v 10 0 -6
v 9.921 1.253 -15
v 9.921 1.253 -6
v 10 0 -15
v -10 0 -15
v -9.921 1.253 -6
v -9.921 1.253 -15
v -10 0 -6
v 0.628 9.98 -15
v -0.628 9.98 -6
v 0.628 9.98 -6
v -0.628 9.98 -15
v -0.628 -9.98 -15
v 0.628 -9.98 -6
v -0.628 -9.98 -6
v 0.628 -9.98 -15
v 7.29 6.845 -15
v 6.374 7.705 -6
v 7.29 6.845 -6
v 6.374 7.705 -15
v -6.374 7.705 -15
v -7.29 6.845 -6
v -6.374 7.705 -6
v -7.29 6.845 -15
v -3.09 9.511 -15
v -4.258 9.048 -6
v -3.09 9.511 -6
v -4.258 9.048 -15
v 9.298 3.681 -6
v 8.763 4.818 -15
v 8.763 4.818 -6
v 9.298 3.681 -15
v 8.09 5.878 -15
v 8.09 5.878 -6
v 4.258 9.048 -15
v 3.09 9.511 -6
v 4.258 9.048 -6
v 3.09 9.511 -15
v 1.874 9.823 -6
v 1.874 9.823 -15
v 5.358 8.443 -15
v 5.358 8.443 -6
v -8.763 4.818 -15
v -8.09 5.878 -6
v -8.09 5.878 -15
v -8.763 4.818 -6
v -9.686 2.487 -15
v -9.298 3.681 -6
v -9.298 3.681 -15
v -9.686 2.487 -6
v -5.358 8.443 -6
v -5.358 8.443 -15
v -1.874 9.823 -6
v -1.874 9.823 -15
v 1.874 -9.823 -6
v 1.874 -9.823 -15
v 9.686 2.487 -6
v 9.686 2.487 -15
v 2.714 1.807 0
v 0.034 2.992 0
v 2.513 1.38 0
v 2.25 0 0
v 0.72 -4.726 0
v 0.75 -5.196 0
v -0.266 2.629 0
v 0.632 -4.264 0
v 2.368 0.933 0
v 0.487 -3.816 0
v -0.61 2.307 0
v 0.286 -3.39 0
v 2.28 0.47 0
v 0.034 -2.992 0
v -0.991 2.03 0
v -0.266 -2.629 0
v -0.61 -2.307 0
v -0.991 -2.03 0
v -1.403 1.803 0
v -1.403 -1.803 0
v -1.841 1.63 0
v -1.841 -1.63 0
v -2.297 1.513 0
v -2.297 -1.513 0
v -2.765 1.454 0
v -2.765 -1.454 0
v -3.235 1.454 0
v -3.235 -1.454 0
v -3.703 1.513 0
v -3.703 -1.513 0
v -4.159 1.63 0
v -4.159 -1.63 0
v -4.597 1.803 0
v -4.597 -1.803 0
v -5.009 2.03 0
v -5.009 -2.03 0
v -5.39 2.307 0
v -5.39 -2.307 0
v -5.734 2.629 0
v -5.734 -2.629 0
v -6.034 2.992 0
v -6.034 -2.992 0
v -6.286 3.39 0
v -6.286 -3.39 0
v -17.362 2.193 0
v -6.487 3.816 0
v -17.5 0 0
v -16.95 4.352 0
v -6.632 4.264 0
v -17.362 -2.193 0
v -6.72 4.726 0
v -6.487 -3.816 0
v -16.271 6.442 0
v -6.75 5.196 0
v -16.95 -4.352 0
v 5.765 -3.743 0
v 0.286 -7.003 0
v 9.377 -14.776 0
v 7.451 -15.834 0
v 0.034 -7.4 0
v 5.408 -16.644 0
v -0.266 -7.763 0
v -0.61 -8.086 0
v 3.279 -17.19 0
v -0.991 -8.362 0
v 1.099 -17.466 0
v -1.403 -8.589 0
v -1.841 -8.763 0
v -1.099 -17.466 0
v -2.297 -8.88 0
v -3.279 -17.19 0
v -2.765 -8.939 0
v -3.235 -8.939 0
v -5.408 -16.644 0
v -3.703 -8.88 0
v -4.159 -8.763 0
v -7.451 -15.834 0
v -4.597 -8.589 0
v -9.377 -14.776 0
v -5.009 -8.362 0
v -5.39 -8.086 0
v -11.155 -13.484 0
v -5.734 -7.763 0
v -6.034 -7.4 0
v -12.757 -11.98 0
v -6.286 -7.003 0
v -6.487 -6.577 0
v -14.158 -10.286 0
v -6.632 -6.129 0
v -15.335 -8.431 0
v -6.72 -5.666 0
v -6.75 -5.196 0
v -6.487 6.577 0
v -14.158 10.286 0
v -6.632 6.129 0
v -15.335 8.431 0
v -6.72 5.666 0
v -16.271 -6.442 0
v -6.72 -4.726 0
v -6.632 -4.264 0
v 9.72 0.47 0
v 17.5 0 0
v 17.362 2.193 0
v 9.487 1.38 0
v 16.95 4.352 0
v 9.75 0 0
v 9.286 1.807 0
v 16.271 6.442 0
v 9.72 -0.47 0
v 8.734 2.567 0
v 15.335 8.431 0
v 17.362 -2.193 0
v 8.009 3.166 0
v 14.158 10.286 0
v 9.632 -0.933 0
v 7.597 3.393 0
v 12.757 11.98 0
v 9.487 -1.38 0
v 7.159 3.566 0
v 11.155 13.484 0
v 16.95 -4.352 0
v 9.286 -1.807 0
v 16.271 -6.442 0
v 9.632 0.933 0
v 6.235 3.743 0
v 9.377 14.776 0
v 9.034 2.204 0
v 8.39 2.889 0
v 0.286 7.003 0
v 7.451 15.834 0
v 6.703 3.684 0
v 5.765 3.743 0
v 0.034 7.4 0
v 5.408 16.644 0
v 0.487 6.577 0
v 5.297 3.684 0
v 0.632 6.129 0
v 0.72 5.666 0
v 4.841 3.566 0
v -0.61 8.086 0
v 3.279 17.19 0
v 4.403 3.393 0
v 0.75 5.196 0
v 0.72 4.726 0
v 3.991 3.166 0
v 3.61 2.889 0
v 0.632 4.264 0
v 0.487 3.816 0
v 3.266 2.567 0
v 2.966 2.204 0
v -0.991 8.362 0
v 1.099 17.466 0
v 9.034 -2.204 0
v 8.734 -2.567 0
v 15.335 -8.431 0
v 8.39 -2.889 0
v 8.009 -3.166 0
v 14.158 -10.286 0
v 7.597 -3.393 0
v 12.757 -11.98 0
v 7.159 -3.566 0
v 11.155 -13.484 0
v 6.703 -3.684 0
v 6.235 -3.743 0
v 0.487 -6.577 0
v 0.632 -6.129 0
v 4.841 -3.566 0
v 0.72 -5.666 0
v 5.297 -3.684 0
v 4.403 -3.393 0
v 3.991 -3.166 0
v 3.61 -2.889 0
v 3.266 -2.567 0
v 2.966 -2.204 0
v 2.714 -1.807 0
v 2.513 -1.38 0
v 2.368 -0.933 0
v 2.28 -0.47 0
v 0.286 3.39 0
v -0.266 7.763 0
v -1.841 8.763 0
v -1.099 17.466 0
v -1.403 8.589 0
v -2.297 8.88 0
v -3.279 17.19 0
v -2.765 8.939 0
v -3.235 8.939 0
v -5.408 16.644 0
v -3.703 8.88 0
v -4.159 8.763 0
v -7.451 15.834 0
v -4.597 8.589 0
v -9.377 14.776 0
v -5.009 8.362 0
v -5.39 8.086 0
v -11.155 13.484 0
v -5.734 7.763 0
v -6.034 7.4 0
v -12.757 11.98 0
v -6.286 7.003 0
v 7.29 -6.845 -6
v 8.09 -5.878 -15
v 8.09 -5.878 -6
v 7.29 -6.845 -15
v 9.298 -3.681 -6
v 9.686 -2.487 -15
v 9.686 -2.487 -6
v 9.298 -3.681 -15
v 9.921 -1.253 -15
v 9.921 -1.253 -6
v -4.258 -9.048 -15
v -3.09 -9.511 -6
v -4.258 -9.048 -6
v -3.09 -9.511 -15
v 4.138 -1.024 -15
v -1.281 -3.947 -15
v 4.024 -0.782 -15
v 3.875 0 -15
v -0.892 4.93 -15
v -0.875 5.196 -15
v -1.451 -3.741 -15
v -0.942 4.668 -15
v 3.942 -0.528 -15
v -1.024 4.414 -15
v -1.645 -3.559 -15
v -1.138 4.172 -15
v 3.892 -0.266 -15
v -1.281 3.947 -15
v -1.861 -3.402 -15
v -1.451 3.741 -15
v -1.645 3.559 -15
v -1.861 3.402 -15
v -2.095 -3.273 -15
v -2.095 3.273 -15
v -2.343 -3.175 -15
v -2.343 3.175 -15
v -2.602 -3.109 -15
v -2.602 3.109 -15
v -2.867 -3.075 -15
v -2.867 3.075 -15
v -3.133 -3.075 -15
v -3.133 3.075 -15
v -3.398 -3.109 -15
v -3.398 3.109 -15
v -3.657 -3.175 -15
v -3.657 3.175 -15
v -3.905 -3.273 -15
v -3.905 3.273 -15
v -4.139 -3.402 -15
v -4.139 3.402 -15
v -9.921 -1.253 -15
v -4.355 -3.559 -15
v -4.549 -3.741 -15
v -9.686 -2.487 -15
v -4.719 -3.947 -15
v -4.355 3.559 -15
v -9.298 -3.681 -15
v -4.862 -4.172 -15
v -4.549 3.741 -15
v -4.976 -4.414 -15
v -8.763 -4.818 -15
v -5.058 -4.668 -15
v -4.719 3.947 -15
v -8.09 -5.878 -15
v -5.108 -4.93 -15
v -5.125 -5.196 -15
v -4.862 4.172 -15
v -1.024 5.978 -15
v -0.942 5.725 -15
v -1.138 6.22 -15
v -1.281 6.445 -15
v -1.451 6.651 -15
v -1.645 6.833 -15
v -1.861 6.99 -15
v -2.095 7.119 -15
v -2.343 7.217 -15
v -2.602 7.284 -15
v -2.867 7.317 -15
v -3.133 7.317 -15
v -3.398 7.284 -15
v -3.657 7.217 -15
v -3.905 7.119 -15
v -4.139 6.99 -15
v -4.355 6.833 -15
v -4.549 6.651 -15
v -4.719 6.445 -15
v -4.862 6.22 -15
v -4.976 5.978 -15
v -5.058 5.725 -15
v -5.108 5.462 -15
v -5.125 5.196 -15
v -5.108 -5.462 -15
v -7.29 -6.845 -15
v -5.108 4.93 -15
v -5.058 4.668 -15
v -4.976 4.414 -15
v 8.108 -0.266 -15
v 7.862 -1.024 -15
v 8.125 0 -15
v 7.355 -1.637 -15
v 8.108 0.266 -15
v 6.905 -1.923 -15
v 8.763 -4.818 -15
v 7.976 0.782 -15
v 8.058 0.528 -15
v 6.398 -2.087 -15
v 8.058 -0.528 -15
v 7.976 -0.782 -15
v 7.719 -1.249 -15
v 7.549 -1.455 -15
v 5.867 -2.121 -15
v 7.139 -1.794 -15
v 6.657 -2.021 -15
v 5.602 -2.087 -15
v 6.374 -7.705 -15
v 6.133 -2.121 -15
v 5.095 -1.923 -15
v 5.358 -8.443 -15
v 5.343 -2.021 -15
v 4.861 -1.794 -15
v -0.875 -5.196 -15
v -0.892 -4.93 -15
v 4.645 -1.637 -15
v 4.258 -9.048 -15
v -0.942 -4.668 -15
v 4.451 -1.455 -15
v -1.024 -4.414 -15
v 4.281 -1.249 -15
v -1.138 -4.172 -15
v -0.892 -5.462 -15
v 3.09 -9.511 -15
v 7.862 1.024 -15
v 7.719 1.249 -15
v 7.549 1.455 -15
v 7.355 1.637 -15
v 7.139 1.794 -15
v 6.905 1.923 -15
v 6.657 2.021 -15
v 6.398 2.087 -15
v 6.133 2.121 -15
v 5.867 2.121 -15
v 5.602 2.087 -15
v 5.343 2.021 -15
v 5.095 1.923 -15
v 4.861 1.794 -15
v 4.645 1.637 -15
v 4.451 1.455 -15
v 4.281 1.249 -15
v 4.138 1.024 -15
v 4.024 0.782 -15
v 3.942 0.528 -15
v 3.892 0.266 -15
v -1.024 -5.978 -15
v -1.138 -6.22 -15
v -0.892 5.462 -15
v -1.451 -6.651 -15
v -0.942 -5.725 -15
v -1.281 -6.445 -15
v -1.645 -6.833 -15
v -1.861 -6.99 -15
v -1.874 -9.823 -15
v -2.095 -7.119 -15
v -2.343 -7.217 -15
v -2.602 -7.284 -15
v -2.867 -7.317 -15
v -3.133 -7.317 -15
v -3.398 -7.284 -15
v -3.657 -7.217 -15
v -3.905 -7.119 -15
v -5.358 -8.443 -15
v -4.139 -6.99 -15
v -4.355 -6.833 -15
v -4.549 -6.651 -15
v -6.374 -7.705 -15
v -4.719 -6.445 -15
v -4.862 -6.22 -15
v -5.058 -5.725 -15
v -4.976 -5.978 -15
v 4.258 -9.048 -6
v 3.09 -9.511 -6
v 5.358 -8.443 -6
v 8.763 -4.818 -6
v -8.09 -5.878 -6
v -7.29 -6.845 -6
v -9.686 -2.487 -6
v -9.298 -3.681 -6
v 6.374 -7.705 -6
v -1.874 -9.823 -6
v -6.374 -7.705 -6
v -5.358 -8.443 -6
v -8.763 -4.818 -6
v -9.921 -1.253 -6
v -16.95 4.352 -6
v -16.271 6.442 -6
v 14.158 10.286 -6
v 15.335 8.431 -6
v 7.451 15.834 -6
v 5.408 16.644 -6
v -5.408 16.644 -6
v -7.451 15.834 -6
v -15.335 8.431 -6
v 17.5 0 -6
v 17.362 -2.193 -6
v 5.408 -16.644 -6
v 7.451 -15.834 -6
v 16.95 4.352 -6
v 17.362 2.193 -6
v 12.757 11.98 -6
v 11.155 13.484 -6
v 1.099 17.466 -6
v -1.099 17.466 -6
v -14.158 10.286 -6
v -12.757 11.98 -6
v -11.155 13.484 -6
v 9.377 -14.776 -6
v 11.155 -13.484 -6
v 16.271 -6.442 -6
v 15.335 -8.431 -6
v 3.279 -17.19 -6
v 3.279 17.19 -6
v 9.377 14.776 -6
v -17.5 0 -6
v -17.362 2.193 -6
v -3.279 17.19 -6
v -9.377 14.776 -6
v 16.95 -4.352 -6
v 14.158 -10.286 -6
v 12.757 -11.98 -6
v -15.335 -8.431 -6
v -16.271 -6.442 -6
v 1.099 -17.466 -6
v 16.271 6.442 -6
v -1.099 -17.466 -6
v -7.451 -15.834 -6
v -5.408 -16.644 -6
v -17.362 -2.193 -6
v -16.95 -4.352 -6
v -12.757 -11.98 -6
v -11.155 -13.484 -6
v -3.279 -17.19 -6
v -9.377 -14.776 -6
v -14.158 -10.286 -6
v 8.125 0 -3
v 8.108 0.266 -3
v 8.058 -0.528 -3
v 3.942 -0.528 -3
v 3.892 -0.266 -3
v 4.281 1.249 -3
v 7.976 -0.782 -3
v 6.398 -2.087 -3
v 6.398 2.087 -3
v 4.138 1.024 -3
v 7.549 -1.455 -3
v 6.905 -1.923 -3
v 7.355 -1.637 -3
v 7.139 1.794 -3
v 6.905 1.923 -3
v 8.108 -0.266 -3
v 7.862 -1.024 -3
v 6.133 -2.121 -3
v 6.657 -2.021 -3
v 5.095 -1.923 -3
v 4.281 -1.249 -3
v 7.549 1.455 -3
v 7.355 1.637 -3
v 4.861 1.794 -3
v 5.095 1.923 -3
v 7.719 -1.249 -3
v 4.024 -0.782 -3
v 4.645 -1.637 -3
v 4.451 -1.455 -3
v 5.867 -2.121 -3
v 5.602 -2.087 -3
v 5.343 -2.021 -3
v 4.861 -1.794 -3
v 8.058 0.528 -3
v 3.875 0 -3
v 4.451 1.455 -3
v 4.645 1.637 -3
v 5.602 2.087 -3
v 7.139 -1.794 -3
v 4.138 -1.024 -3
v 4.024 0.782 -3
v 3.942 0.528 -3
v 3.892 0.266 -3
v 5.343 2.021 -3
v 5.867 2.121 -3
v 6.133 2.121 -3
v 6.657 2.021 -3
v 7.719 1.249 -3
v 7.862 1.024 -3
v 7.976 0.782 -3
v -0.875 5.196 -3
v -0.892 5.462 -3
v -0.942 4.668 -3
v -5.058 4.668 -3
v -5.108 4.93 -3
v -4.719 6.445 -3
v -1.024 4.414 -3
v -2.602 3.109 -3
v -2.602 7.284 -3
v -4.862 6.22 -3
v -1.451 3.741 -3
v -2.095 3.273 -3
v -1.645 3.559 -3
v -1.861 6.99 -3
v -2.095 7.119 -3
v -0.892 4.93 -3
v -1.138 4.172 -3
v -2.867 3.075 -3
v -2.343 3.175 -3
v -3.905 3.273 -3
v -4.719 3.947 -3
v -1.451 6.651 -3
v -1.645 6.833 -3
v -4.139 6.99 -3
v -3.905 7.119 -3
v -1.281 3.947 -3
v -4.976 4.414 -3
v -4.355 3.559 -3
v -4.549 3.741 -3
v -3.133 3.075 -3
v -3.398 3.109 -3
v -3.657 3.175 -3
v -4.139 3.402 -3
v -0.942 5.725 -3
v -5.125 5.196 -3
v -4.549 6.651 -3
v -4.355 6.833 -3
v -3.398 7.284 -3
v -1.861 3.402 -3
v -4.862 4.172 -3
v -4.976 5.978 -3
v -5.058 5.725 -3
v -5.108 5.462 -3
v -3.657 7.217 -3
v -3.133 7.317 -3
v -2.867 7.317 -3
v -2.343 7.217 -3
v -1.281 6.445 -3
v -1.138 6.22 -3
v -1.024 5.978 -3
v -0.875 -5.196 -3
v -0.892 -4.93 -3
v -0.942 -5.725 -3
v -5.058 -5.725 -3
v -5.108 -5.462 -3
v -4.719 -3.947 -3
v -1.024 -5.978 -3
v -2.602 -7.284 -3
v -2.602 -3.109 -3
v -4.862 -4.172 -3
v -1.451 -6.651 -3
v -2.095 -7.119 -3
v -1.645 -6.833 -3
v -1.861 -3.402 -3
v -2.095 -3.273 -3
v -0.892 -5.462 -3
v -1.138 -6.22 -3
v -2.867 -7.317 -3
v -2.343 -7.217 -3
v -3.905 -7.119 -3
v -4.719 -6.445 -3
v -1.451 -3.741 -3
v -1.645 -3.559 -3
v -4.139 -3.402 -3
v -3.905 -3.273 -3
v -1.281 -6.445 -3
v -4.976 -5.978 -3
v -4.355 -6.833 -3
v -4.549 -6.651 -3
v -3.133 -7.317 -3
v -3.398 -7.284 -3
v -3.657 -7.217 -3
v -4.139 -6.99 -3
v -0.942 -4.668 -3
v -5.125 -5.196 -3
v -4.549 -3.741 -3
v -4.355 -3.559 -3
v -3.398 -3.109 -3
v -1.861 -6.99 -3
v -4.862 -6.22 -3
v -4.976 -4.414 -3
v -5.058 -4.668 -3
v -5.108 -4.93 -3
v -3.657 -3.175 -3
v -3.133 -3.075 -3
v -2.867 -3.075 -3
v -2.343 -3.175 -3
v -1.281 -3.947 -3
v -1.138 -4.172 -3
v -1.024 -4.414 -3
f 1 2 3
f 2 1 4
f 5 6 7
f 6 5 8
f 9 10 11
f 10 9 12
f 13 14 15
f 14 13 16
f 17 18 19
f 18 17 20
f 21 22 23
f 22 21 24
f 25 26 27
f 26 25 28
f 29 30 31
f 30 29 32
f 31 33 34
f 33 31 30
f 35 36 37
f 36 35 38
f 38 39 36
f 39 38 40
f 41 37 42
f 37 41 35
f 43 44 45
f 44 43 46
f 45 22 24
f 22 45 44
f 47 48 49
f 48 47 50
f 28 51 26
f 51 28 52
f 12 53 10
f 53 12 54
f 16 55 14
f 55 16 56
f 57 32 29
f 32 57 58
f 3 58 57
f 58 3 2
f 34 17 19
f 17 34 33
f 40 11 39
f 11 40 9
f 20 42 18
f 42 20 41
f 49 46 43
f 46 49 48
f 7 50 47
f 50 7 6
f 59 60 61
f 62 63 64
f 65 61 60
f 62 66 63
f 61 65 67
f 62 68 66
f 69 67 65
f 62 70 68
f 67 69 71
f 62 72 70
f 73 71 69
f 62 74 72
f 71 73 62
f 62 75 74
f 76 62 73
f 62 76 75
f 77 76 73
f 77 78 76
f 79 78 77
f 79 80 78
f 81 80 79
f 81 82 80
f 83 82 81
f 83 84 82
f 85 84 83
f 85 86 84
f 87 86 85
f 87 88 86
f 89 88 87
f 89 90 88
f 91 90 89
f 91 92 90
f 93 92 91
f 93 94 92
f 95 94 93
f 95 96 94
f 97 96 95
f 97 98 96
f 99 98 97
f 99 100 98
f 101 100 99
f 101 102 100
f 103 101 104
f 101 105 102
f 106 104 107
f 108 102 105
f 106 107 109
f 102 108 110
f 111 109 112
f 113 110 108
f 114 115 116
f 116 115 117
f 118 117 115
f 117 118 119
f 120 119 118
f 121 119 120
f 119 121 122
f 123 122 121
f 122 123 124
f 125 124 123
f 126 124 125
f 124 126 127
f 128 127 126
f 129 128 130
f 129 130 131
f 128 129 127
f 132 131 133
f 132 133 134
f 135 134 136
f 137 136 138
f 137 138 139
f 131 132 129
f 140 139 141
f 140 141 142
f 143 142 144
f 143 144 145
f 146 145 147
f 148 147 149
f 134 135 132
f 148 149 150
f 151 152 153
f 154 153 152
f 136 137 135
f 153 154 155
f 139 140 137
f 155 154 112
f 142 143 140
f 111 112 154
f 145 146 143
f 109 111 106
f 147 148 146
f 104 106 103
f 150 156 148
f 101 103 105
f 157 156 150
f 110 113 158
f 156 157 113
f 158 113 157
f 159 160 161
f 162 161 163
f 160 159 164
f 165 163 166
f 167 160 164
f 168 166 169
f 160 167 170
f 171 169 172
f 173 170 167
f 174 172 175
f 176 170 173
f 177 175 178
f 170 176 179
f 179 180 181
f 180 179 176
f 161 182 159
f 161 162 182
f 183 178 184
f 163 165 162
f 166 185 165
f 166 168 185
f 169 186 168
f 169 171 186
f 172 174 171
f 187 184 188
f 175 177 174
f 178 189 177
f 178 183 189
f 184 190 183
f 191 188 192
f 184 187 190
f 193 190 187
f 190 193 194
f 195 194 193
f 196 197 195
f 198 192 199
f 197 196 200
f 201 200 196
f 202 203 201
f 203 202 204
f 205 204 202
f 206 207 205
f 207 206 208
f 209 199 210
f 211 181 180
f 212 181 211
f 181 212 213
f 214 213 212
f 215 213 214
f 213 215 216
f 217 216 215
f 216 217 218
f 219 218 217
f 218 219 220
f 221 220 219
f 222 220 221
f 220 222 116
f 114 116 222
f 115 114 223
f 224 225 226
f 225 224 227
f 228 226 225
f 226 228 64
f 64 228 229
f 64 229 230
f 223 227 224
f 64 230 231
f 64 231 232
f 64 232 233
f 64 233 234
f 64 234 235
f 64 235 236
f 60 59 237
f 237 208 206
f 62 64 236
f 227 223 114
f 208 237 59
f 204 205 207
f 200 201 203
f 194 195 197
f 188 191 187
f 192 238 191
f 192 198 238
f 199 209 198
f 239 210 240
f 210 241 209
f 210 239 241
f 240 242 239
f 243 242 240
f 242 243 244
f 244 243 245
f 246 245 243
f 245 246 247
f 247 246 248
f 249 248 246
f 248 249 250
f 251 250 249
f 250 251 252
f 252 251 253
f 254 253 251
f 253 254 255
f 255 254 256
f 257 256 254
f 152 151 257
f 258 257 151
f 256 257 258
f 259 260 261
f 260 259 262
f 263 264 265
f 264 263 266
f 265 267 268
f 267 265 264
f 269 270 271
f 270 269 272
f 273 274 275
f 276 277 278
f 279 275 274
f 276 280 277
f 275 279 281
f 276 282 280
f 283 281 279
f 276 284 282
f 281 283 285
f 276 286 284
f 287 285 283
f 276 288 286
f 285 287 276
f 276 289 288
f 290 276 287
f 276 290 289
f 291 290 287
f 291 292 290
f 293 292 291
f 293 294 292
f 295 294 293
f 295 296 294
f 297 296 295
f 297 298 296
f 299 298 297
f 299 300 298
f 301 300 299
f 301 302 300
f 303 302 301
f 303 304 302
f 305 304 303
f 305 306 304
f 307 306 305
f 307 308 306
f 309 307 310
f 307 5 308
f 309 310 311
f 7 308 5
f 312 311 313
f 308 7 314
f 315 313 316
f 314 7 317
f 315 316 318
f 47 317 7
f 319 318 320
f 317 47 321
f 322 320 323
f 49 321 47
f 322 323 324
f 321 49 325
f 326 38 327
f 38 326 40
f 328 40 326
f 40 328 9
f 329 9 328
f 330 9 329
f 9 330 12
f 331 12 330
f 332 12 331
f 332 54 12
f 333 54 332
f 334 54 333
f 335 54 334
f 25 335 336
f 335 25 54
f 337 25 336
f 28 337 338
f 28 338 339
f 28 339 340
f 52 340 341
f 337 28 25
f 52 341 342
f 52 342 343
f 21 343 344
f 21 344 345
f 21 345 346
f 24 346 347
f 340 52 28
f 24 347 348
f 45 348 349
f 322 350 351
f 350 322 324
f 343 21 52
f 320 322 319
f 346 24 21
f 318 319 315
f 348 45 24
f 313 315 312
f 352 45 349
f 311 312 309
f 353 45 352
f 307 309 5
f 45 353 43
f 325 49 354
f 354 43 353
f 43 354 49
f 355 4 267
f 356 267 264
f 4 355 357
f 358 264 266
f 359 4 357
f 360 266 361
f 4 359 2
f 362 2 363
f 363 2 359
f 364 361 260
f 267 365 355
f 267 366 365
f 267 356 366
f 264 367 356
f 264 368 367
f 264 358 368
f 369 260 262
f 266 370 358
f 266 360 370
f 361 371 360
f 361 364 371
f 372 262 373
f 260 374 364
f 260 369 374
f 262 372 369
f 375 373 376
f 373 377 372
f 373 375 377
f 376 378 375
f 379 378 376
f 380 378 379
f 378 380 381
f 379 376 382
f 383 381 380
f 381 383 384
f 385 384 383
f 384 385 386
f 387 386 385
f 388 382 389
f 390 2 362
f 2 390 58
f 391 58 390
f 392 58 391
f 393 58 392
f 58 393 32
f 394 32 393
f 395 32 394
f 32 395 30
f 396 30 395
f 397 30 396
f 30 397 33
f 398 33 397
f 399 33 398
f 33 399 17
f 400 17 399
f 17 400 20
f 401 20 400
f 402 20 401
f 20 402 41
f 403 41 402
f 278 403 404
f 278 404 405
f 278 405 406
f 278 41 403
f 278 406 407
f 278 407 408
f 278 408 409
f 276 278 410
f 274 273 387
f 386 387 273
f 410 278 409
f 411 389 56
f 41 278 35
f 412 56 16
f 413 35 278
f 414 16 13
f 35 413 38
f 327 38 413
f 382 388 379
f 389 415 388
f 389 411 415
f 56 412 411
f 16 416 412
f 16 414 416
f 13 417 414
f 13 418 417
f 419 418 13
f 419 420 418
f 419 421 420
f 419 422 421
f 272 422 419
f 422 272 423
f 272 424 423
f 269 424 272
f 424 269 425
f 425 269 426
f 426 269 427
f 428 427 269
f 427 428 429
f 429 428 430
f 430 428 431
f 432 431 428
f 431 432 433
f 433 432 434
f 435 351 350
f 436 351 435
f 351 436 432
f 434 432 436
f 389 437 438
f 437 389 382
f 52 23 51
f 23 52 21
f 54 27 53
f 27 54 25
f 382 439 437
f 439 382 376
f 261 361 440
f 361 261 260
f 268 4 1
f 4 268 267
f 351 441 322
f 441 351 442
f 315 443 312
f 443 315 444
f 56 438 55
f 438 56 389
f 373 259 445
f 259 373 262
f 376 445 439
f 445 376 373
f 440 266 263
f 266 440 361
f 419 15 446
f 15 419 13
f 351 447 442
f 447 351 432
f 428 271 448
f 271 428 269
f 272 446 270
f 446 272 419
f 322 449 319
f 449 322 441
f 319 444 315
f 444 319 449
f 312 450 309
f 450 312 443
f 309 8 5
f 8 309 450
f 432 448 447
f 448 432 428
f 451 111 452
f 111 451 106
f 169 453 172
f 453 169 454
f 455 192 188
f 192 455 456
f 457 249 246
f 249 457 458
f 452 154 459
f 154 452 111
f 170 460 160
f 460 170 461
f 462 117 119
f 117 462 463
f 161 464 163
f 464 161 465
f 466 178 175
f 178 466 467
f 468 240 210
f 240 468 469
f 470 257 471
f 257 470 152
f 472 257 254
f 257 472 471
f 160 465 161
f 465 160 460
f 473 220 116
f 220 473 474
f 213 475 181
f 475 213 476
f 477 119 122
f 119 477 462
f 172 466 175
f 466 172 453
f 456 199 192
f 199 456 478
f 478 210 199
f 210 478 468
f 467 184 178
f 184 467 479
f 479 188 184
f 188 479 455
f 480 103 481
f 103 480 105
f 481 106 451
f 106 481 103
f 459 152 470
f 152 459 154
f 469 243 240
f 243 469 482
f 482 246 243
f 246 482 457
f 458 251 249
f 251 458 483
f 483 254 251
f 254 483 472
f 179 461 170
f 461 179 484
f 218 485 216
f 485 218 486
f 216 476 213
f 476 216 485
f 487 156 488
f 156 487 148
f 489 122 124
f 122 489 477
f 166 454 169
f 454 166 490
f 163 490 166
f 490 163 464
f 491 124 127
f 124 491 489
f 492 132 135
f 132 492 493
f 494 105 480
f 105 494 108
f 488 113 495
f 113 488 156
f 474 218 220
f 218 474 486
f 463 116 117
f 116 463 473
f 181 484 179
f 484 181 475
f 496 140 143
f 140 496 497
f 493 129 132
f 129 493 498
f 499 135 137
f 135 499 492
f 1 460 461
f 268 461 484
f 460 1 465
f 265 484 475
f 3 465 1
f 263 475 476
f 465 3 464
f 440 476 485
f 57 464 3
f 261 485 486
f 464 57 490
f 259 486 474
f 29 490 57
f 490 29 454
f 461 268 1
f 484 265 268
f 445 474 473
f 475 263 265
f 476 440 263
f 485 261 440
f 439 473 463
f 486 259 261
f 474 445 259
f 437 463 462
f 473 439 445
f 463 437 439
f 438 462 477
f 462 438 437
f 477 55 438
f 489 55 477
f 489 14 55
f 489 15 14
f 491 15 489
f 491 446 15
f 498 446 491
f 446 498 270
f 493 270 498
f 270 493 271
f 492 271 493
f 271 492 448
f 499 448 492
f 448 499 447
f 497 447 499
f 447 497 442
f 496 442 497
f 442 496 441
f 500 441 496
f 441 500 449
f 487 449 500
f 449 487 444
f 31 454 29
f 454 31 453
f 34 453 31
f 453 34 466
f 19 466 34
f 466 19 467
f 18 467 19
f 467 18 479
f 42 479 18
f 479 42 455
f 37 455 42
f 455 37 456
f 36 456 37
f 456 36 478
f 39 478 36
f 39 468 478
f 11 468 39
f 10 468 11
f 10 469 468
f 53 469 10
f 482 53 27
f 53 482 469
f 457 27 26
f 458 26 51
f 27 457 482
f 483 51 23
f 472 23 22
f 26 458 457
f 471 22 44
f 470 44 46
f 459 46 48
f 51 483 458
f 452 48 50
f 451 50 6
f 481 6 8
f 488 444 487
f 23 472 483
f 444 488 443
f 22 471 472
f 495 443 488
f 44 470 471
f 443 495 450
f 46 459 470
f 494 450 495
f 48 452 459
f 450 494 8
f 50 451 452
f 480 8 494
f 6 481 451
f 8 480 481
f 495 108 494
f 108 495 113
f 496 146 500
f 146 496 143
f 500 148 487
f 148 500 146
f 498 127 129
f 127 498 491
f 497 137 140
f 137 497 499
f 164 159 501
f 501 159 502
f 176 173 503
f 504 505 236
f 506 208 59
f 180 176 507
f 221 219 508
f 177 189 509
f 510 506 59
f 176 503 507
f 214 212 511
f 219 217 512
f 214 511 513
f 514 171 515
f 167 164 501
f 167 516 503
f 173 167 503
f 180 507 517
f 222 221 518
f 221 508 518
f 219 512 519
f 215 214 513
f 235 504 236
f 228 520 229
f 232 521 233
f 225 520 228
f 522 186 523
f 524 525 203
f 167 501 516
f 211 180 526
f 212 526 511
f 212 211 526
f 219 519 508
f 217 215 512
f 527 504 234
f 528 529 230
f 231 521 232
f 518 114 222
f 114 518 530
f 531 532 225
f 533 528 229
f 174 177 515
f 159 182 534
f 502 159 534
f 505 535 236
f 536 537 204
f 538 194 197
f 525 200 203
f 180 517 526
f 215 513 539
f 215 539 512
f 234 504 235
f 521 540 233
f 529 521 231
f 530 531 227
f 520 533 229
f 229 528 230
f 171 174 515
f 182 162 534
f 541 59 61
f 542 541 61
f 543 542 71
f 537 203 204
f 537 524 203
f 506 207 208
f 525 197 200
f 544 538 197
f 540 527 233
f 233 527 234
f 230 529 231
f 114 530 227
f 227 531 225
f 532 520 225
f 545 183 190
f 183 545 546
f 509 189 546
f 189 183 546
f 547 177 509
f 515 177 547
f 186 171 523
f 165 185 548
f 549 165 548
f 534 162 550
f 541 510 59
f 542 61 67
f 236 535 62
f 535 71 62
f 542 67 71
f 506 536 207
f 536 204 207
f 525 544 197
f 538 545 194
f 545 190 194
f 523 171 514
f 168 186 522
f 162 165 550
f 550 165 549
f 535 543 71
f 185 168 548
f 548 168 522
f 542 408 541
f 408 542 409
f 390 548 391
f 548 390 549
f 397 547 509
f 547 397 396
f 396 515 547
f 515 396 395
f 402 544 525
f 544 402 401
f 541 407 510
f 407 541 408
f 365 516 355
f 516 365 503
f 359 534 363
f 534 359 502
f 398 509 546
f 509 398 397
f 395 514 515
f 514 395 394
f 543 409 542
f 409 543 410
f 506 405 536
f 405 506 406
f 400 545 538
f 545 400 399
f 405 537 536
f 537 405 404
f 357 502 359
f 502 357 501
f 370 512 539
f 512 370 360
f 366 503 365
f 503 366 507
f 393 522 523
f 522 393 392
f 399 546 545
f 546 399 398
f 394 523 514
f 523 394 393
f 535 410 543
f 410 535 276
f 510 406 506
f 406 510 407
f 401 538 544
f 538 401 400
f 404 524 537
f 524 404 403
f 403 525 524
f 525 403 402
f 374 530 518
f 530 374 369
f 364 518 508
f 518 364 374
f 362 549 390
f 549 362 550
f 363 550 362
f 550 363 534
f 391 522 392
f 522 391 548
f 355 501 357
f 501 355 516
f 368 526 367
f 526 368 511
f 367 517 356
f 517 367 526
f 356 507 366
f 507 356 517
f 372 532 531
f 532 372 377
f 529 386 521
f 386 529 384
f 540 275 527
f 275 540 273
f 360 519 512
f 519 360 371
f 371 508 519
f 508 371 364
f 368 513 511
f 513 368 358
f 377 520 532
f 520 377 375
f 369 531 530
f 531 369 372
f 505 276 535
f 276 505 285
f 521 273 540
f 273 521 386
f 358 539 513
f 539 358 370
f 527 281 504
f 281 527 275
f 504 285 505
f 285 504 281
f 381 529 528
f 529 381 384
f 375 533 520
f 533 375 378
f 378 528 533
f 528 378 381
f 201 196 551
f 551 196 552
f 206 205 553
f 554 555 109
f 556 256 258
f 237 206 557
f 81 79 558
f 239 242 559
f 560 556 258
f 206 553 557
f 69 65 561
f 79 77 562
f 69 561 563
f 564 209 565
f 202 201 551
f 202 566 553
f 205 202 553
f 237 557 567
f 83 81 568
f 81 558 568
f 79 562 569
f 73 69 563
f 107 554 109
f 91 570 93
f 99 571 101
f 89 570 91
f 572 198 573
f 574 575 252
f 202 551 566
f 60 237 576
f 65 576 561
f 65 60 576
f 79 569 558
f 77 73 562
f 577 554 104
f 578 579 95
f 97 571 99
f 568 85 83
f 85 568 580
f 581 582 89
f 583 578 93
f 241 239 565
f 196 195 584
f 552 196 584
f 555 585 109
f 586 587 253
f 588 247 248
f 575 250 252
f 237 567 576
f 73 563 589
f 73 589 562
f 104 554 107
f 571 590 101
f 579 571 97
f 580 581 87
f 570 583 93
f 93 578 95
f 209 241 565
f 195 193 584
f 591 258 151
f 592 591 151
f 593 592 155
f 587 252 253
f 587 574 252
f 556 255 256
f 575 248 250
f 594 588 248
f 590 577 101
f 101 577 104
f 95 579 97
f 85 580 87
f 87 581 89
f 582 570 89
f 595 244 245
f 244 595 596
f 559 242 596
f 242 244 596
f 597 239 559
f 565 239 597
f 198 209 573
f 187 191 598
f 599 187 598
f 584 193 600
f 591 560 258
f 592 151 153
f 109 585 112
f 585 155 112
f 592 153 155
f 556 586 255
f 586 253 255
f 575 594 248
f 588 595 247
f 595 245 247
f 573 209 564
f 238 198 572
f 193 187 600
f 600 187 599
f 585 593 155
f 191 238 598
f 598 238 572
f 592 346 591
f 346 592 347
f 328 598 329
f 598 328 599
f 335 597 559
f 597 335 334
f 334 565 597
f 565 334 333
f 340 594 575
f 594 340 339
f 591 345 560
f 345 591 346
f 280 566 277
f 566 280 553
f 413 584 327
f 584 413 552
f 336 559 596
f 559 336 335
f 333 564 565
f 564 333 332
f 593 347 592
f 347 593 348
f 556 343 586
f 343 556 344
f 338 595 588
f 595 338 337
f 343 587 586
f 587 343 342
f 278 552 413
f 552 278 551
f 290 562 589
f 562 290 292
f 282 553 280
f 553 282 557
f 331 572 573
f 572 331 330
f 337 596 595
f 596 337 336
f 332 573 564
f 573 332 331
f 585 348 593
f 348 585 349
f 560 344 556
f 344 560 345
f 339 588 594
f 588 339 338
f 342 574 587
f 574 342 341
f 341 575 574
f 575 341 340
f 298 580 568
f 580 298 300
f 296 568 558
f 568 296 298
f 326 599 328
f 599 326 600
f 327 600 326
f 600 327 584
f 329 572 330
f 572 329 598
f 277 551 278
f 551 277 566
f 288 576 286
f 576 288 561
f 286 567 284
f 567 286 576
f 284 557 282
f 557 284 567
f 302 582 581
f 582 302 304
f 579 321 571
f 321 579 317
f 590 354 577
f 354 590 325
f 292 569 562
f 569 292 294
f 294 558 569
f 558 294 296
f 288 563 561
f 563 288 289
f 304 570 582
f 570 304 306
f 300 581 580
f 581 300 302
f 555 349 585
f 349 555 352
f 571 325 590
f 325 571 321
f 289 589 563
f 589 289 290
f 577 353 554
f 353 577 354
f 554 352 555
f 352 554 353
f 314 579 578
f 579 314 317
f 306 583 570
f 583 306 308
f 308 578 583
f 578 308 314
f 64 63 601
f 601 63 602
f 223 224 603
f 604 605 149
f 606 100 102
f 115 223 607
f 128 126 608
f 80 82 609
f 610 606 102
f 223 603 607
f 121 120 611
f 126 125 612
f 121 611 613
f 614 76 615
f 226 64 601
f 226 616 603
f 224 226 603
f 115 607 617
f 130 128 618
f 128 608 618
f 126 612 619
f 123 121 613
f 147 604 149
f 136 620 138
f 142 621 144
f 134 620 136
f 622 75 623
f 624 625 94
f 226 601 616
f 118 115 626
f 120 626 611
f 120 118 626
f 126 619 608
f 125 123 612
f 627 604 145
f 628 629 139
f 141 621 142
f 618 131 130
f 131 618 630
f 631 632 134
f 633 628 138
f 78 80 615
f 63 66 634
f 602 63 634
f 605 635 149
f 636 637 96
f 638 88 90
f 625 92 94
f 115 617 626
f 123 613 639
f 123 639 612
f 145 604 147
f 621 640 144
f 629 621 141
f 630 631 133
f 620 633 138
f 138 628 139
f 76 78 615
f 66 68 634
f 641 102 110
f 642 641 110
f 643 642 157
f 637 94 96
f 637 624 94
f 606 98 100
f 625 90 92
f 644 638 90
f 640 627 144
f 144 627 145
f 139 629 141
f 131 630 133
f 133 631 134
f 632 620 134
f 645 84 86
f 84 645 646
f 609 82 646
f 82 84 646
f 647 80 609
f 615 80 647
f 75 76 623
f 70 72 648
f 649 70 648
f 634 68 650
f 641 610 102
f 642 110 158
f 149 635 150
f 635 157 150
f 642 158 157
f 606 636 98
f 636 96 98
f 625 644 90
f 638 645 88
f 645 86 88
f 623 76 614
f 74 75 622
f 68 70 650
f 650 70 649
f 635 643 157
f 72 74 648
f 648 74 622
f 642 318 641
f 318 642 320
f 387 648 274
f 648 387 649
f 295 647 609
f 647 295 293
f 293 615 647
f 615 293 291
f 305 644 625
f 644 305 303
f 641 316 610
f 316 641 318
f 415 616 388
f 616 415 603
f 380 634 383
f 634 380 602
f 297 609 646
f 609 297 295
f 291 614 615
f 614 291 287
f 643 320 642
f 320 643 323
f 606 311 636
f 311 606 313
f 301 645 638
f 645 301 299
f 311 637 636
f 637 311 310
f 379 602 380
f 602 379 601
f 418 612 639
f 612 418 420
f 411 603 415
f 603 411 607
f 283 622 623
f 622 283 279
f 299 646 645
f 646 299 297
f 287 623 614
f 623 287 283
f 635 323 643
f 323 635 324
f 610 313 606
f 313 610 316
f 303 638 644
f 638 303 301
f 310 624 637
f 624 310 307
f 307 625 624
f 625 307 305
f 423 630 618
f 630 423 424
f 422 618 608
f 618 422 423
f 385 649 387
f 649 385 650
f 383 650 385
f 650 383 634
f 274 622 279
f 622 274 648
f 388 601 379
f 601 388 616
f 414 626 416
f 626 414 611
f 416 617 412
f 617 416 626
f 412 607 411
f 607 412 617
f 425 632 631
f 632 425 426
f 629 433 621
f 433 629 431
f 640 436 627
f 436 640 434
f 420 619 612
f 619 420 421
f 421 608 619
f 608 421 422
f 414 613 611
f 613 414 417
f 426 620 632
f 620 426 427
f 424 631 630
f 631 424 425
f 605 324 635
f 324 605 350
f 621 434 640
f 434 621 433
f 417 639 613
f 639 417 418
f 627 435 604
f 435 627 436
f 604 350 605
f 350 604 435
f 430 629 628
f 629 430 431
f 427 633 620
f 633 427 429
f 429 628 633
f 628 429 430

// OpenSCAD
$fn = 50;


difference() {
	union() {
		translate(v = [0, 0, -15.0000000000]) {
			cylinder(h = 15, r = 10.0000000000);
		}
		translate(v = [0, 0, -6.0000000000]) {
			cylinder(h = 6, r = 17.5000000000);
		}
	}
	union() {
		translate(v = [6.0000000000, 0.0000000000, 0]) {
			rotate(a = [0, 0, 0]) {
				difference() {
					union() {
						#translate(v = [0, 0, -15.0000000000]) {
							cylinder(h = 15, r = 2.0000000000);
						}
						#translate(v = [0, 0, -3]) {
							cylinder(h = 3, r = 10.0000000000, r1 = 2.1250000000, r2 = 3.7500000000);
						}
						#translate(v = [0, 0, -15.0000000000]) {
							cylinder(h = 15, r = 2.1250000000);
						}
						#translate(v = [0, 0, -15.0000000000]) {
							cylinder(h = 15, r = 2.0000000000);
						}
					}
					union();
				}
			}
		}
		translate(v = [-3.0000000000, 5.1961524227, 0]) {
			rotate(a = [0, 0, 0]) {
				difference() {
					union() {
						#translate(v = [0, 0, -15.0000000000]) {
							cylinder(h = 15, r = 2.0000000000);
						}
						#translate(v = [0, 0, -3]) {
							cylinder(h = 3, r = 10.0000000000, r1 = 2.1250000000, r2 = 3.7500000000);
						}
						#translate(v = [0, 0, -15.0000000000]) {
							cylinder(h = 15, r = 2.1250000000);
						}
						#translate(v = [0, 0, -15.0000000000]) {
							cylinder(h = 15, r = 2.0000000000);
						}
					}
					union();
				}
			}
		}
		translate(v = [-3.0000000000, -5.1961524227, 0]) {
			rotate(a = [0, 0, 0]) {
				difference() {
					union() {
						#translate(v = [0, 0, -15.0000000000]) {
							cylinder(h = 15, r = 2.0000000000);
						}
						#translate(v = [0, 0, -3]) {
							cylinder(h = 3, r = 10.0000000000, r1 = 2.1250000000, r2 = 3.7500000000);
						}
						#translate(v = [0, 0, -15.0000000000]) {
							cylinder(h = 15, r = 2.1250000000);
						}
						#translate(v = [0, 0, -15.0000000000]) {
							cylinder(h = 15, r = 2.0000000000);
						}
					}
					union();
				}
			}
		}
	}
}
